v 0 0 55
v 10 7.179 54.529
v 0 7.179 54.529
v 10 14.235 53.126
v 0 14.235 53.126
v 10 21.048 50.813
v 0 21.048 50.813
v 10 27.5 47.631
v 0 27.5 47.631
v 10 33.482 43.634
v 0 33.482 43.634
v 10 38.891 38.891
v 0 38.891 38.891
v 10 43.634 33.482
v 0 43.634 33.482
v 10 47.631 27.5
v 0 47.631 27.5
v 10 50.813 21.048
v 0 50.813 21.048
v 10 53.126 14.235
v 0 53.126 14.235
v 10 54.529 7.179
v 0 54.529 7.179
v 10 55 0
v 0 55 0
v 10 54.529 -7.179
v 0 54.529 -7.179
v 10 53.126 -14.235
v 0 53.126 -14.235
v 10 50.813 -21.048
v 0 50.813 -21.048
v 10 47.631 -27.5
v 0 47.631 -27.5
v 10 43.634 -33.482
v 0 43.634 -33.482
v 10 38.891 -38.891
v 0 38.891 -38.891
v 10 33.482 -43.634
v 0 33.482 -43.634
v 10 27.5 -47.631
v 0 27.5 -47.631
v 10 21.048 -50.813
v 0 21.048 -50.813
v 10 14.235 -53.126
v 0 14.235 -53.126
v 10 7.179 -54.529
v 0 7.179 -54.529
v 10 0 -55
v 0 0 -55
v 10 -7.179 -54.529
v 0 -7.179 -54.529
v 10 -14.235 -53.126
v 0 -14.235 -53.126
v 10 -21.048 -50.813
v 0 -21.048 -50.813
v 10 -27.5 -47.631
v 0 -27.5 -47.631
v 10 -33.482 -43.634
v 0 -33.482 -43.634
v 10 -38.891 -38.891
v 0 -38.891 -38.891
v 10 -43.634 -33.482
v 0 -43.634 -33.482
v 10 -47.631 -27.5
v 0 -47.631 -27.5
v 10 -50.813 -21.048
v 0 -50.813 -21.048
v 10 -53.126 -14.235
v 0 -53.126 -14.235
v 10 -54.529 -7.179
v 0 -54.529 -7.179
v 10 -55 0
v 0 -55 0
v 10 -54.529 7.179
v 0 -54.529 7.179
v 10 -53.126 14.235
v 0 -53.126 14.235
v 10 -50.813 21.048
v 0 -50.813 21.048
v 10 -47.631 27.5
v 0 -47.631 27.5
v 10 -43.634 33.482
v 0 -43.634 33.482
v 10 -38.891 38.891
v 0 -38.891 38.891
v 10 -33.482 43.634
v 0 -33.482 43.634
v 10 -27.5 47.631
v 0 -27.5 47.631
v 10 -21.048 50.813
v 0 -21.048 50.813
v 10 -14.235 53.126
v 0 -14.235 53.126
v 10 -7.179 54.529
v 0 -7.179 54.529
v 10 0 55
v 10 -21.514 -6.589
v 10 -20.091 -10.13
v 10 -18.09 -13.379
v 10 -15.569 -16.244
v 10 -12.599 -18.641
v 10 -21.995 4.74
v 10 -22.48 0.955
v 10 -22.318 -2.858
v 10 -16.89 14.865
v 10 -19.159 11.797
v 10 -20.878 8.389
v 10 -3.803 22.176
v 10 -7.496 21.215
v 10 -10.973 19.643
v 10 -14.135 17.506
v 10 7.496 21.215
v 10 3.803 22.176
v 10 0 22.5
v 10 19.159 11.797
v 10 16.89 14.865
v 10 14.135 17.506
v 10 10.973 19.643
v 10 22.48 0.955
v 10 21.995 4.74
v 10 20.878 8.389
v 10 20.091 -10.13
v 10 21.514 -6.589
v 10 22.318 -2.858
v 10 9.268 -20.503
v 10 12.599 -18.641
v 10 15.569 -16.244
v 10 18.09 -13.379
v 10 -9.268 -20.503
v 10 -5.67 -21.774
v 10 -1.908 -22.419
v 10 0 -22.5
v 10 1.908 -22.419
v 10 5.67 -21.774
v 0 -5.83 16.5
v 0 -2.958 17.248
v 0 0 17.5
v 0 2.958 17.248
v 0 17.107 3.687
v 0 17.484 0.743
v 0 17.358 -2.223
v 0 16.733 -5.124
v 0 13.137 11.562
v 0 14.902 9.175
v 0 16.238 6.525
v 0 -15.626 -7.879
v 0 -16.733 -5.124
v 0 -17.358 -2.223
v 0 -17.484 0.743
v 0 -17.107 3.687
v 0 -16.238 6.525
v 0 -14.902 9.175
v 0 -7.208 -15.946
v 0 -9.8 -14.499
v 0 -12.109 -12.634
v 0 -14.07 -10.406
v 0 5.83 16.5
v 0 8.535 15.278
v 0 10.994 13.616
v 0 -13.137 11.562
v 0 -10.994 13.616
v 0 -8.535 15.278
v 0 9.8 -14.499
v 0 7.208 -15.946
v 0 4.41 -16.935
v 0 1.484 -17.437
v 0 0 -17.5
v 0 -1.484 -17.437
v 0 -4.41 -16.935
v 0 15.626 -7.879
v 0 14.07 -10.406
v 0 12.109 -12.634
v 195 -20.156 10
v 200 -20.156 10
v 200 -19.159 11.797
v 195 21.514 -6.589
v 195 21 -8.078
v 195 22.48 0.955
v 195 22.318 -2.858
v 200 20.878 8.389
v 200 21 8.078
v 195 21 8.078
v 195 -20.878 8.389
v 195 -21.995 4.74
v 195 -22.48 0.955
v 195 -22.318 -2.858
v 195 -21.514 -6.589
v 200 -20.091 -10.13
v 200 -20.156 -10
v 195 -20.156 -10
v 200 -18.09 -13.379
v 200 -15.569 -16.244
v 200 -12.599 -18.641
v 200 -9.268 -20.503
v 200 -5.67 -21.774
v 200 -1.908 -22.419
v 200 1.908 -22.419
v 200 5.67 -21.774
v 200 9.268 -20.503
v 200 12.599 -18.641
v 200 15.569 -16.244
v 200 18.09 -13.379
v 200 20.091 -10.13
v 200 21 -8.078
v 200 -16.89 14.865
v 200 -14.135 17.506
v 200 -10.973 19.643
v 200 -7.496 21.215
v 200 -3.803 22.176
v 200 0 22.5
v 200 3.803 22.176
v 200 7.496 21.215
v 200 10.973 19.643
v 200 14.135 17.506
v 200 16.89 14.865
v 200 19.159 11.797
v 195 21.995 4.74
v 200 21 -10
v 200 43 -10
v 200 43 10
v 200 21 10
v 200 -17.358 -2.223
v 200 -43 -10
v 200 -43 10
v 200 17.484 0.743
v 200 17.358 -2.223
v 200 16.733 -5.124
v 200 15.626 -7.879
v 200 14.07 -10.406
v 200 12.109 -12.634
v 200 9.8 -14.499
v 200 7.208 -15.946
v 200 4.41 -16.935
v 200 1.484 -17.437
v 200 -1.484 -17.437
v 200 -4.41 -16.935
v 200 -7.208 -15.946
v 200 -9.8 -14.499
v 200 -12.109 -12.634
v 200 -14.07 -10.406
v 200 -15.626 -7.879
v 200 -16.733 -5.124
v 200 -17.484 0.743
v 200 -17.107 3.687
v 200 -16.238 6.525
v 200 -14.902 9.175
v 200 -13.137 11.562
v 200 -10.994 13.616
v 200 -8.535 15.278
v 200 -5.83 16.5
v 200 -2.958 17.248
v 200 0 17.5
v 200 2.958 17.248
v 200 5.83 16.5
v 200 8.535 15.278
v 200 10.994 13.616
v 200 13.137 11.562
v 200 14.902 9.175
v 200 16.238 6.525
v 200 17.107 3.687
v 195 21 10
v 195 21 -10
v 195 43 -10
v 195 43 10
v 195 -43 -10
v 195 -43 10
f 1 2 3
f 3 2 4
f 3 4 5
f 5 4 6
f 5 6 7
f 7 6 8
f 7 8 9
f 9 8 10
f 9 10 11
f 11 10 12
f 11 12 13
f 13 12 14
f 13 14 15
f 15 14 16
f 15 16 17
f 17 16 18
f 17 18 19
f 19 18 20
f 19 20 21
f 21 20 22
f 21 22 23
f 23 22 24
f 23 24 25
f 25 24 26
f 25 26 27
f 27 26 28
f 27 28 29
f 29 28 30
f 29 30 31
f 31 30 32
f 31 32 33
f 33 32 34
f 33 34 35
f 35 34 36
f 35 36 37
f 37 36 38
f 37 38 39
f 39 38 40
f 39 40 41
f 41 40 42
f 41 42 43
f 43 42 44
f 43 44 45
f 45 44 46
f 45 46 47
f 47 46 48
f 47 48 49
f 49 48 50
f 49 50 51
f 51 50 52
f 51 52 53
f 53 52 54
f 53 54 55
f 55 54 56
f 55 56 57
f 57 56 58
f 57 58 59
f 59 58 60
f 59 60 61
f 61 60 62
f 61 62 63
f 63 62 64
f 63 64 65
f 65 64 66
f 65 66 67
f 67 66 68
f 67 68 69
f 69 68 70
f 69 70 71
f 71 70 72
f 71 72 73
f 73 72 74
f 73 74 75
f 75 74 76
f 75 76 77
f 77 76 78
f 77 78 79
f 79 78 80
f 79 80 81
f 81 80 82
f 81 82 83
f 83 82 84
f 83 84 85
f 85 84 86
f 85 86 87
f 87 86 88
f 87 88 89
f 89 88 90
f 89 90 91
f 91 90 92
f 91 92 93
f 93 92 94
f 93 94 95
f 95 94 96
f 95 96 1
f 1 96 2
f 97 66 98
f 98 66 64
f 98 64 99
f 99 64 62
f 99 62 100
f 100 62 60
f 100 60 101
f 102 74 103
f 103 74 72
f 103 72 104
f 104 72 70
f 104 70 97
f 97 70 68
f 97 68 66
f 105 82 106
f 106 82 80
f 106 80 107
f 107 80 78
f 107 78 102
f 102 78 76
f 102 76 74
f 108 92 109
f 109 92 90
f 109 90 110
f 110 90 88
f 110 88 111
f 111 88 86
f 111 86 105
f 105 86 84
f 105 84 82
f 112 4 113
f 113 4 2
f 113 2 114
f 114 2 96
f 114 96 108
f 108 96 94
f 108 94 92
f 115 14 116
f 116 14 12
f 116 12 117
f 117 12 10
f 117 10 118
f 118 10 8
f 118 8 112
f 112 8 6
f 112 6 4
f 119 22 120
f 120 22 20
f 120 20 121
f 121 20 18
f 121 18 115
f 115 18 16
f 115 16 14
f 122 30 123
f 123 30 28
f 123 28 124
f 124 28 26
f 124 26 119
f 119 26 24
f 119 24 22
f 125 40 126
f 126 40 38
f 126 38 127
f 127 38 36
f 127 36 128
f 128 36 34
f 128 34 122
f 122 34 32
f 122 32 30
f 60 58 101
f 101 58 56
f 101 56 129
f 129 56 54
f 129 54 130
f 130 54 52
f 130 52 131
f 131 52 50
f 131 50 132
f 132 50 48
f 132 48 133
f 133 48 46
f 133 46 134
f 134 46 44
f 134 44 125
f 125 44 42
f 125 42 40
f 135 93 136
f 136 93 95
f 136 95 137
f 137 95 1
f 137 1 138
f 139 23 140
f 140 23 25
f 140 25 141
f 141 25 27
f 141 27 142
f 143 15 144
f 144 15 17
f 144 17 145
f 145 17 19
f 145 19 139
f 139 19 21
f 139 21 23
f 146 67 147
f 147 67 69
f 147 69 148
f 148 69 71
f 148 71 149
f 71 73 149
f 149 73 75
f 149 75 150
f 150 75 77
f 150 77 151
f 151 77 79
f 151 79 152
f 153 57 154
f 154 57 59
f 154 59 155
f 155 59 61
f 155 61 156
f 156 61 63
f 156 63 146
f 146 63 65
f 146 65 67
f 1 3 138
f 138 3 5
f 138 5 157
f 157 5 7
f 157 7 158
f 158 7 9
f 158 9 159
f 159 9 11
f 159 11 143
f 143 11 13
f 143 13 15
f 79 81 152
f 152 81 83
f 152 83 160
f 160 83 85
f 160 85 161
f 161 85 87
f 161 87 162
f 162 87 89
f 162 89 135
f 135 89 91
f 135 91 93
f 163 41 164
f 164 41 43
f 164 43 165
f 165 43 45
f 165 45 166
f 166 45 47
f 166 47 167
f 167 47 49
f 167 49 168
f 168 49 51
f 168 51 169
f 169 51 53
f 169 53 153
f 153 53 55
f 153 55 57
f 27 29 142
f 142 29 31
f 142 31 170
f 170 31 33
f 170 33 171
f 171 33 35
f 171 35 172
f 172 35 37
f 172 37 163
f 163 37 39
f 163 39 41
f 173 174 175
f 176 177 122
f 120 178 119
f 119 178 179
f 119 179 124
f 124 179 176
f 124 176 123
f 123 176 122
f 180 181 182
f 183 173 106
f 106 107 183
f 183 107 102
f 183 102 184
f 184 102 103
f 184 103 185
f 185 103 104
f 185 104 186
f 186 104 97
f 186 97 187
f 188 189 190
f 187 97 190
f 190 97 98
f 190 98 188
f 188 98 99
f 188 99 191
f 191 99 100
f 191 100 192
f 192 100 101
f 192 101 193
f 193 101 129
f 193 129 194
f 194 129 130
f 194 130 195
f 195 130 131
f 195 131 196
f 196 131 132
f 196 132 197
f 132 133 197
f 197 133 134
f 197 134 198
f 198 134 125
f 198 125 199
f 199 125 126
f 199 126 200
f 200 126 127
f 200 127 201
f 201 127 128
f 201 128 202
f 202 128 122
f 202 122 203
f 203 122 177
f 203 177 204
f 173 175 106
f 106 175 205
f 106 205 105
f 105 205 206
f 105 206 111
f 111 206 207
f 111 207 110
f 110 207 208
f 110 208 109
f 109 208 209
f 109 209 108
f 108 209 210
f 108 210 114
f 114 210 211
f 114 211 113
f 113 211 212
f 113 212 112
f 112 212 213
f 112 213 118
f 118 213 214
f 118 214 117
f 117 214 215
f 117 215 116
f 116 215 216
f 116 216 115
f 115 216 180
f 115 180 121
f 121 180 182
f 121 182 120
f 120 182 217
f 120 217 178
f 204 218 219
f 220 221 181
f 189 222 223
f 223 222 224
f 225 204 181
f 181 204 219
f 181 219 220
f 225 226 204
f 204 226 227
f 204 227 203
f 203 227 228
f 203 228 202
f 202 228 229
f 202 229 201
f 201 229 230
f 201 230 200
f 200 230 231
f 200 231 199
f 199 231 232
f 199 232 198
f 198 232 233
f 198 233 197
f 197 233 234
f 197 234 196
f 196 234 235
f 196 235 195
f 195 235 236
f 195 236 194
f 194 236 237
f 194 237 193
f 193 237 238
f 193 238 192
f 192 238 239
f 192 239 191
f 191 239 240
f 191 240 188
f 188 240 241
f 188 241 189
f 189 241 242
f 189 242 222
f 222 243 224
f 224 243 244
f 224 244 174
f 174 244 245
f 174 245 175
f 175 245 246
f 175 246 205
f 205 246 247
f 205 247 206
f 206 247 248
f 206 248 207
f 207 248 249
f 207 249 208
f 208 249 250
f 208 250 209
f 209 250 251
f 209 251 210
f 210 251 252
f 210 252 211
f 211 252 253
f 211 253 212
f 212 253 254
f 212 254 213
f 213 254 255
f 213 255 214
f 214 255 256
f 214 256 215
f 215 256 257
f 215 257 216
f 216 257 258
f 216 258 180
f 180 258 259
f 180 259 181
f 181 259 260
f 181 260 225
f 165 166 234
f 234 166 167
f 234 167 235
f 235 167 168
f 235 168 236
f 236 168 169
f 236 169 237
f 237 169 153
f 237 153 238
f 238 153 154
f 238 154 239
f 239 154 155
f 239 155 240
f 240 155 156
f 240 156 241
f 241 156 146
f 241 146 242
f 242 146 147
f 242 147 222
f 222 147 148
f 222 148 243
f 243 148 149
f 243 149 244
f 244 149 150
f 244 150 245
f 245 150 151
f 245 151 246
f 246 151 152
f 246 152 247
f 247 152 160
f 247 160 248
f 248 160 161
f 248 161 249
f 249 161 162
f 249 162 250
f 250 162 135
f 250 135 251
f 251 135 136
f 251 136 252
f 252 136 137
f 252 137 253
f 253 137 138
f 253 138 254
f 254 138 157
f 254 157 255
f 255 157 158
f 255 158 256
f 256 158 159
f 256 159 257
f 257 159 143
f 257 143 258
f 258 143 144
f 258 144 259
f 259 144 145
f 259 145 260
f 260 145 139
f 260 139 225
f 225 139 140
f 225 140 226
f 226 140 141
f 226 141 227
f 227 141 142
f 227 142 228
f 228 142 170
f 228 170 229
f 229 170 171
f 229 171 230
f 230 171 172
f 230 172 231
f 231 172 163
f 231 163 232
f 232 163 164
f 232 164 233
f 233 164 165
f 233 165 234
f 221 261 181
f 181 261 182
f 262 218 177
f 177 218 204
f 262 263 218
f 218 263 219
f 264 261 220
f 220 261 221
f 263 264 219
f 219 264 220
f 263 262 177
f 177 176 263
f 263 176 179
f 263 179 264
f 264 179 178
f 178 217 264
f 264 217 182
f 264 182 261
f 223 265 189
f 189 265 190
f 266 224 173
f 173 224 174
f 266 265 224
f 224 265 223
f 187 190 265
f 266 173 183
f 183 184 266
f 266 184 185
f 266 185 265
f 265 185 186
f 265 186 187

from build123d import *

# Parameters (mm, degrees)
SKETCH2_R               = 55
BOSS_EXTRUDE1_DEPTH     = 10
SKETCH3_R               = 22.5
BOSS_EXTRUDE2_DEPTH     = 190
SKETCH4_R               = 17.5
CUT_EXTRUDE1_DEPTH      = 1
CUT_EXTRUDE1_DEPTH_BACK = 201
SKETCH9_W               = 20
SKETCH9_H               = 22
BOSS_EXTRUDE3_DEPTH     = 5
SKETCH10_W              = 20
SKETCH10_H              = 23
BOSS_EXTRUDE4_DEPTH     = 5


with BuildPart() as part:
    # Sketch2 → Boss-Extrude1 (new body)
    with BuildSketch(Plane(origin=(0, 0, 0), x_dir=(0, 0, -1), z_dir=(1, 0, 0))):
        Circle(SKETCH2_R)
    extrude(amount=BOSS_EXTRUDE1_DEPTH)

    # Sketch3 → Boss-Extrude2 (add)
    with BuildSketch(Plane(origin=(10, 0, 0), x_dir=(0, 0, -1), z_dir=(1, 0, 0))):
        Circle(SKETCH3_R)
    extrude(amount=BOSS_EXTRUDE2_DEPTH)

    # Sketch4 → Cut-Extrude1 (cut, two sides)
    with BuildSketch(Plane.ZY) as cut_extrude1_sk:
        Circle(SKETCH4_R)
    extrude(amount=CUT_EXTRUDE1_DEPTH, mode=Mode.SUBTRACT)
    extrude(cut_extrude1_sk.sketch, amount=-CUT_EXTRUDE1_DEPTH_BACK, mode=Mode.SUBTRACT)

    # Sketch9 → Boss-Extrude3 (add)
    with BuildSketch(Plane(origin=(200, 0, 0), x_dir=(0, 0, -1), z_dir=(1, 0, 0))):
        with Locations((0, 32)):
            Rectangle(SKETCH9_W, SKETCH9_H)
    extrude(amount=-BOSS_EXTRUDE3_DEPTH)

    # Sketch10 → Boss-Extrude4 (add)
    with BuildSketch(Plane(origin=(200, 0, 0), x_dir=(0, 0, -1), z_dir=(1, 0, 0))):
        with Locations((0, -31.5)):
            Rectangle(SKETCH10_W, SKETCH10_H)
    extrude(amount=-BOSS_EXTRUDE4_DEPTH)


solid = part.part
